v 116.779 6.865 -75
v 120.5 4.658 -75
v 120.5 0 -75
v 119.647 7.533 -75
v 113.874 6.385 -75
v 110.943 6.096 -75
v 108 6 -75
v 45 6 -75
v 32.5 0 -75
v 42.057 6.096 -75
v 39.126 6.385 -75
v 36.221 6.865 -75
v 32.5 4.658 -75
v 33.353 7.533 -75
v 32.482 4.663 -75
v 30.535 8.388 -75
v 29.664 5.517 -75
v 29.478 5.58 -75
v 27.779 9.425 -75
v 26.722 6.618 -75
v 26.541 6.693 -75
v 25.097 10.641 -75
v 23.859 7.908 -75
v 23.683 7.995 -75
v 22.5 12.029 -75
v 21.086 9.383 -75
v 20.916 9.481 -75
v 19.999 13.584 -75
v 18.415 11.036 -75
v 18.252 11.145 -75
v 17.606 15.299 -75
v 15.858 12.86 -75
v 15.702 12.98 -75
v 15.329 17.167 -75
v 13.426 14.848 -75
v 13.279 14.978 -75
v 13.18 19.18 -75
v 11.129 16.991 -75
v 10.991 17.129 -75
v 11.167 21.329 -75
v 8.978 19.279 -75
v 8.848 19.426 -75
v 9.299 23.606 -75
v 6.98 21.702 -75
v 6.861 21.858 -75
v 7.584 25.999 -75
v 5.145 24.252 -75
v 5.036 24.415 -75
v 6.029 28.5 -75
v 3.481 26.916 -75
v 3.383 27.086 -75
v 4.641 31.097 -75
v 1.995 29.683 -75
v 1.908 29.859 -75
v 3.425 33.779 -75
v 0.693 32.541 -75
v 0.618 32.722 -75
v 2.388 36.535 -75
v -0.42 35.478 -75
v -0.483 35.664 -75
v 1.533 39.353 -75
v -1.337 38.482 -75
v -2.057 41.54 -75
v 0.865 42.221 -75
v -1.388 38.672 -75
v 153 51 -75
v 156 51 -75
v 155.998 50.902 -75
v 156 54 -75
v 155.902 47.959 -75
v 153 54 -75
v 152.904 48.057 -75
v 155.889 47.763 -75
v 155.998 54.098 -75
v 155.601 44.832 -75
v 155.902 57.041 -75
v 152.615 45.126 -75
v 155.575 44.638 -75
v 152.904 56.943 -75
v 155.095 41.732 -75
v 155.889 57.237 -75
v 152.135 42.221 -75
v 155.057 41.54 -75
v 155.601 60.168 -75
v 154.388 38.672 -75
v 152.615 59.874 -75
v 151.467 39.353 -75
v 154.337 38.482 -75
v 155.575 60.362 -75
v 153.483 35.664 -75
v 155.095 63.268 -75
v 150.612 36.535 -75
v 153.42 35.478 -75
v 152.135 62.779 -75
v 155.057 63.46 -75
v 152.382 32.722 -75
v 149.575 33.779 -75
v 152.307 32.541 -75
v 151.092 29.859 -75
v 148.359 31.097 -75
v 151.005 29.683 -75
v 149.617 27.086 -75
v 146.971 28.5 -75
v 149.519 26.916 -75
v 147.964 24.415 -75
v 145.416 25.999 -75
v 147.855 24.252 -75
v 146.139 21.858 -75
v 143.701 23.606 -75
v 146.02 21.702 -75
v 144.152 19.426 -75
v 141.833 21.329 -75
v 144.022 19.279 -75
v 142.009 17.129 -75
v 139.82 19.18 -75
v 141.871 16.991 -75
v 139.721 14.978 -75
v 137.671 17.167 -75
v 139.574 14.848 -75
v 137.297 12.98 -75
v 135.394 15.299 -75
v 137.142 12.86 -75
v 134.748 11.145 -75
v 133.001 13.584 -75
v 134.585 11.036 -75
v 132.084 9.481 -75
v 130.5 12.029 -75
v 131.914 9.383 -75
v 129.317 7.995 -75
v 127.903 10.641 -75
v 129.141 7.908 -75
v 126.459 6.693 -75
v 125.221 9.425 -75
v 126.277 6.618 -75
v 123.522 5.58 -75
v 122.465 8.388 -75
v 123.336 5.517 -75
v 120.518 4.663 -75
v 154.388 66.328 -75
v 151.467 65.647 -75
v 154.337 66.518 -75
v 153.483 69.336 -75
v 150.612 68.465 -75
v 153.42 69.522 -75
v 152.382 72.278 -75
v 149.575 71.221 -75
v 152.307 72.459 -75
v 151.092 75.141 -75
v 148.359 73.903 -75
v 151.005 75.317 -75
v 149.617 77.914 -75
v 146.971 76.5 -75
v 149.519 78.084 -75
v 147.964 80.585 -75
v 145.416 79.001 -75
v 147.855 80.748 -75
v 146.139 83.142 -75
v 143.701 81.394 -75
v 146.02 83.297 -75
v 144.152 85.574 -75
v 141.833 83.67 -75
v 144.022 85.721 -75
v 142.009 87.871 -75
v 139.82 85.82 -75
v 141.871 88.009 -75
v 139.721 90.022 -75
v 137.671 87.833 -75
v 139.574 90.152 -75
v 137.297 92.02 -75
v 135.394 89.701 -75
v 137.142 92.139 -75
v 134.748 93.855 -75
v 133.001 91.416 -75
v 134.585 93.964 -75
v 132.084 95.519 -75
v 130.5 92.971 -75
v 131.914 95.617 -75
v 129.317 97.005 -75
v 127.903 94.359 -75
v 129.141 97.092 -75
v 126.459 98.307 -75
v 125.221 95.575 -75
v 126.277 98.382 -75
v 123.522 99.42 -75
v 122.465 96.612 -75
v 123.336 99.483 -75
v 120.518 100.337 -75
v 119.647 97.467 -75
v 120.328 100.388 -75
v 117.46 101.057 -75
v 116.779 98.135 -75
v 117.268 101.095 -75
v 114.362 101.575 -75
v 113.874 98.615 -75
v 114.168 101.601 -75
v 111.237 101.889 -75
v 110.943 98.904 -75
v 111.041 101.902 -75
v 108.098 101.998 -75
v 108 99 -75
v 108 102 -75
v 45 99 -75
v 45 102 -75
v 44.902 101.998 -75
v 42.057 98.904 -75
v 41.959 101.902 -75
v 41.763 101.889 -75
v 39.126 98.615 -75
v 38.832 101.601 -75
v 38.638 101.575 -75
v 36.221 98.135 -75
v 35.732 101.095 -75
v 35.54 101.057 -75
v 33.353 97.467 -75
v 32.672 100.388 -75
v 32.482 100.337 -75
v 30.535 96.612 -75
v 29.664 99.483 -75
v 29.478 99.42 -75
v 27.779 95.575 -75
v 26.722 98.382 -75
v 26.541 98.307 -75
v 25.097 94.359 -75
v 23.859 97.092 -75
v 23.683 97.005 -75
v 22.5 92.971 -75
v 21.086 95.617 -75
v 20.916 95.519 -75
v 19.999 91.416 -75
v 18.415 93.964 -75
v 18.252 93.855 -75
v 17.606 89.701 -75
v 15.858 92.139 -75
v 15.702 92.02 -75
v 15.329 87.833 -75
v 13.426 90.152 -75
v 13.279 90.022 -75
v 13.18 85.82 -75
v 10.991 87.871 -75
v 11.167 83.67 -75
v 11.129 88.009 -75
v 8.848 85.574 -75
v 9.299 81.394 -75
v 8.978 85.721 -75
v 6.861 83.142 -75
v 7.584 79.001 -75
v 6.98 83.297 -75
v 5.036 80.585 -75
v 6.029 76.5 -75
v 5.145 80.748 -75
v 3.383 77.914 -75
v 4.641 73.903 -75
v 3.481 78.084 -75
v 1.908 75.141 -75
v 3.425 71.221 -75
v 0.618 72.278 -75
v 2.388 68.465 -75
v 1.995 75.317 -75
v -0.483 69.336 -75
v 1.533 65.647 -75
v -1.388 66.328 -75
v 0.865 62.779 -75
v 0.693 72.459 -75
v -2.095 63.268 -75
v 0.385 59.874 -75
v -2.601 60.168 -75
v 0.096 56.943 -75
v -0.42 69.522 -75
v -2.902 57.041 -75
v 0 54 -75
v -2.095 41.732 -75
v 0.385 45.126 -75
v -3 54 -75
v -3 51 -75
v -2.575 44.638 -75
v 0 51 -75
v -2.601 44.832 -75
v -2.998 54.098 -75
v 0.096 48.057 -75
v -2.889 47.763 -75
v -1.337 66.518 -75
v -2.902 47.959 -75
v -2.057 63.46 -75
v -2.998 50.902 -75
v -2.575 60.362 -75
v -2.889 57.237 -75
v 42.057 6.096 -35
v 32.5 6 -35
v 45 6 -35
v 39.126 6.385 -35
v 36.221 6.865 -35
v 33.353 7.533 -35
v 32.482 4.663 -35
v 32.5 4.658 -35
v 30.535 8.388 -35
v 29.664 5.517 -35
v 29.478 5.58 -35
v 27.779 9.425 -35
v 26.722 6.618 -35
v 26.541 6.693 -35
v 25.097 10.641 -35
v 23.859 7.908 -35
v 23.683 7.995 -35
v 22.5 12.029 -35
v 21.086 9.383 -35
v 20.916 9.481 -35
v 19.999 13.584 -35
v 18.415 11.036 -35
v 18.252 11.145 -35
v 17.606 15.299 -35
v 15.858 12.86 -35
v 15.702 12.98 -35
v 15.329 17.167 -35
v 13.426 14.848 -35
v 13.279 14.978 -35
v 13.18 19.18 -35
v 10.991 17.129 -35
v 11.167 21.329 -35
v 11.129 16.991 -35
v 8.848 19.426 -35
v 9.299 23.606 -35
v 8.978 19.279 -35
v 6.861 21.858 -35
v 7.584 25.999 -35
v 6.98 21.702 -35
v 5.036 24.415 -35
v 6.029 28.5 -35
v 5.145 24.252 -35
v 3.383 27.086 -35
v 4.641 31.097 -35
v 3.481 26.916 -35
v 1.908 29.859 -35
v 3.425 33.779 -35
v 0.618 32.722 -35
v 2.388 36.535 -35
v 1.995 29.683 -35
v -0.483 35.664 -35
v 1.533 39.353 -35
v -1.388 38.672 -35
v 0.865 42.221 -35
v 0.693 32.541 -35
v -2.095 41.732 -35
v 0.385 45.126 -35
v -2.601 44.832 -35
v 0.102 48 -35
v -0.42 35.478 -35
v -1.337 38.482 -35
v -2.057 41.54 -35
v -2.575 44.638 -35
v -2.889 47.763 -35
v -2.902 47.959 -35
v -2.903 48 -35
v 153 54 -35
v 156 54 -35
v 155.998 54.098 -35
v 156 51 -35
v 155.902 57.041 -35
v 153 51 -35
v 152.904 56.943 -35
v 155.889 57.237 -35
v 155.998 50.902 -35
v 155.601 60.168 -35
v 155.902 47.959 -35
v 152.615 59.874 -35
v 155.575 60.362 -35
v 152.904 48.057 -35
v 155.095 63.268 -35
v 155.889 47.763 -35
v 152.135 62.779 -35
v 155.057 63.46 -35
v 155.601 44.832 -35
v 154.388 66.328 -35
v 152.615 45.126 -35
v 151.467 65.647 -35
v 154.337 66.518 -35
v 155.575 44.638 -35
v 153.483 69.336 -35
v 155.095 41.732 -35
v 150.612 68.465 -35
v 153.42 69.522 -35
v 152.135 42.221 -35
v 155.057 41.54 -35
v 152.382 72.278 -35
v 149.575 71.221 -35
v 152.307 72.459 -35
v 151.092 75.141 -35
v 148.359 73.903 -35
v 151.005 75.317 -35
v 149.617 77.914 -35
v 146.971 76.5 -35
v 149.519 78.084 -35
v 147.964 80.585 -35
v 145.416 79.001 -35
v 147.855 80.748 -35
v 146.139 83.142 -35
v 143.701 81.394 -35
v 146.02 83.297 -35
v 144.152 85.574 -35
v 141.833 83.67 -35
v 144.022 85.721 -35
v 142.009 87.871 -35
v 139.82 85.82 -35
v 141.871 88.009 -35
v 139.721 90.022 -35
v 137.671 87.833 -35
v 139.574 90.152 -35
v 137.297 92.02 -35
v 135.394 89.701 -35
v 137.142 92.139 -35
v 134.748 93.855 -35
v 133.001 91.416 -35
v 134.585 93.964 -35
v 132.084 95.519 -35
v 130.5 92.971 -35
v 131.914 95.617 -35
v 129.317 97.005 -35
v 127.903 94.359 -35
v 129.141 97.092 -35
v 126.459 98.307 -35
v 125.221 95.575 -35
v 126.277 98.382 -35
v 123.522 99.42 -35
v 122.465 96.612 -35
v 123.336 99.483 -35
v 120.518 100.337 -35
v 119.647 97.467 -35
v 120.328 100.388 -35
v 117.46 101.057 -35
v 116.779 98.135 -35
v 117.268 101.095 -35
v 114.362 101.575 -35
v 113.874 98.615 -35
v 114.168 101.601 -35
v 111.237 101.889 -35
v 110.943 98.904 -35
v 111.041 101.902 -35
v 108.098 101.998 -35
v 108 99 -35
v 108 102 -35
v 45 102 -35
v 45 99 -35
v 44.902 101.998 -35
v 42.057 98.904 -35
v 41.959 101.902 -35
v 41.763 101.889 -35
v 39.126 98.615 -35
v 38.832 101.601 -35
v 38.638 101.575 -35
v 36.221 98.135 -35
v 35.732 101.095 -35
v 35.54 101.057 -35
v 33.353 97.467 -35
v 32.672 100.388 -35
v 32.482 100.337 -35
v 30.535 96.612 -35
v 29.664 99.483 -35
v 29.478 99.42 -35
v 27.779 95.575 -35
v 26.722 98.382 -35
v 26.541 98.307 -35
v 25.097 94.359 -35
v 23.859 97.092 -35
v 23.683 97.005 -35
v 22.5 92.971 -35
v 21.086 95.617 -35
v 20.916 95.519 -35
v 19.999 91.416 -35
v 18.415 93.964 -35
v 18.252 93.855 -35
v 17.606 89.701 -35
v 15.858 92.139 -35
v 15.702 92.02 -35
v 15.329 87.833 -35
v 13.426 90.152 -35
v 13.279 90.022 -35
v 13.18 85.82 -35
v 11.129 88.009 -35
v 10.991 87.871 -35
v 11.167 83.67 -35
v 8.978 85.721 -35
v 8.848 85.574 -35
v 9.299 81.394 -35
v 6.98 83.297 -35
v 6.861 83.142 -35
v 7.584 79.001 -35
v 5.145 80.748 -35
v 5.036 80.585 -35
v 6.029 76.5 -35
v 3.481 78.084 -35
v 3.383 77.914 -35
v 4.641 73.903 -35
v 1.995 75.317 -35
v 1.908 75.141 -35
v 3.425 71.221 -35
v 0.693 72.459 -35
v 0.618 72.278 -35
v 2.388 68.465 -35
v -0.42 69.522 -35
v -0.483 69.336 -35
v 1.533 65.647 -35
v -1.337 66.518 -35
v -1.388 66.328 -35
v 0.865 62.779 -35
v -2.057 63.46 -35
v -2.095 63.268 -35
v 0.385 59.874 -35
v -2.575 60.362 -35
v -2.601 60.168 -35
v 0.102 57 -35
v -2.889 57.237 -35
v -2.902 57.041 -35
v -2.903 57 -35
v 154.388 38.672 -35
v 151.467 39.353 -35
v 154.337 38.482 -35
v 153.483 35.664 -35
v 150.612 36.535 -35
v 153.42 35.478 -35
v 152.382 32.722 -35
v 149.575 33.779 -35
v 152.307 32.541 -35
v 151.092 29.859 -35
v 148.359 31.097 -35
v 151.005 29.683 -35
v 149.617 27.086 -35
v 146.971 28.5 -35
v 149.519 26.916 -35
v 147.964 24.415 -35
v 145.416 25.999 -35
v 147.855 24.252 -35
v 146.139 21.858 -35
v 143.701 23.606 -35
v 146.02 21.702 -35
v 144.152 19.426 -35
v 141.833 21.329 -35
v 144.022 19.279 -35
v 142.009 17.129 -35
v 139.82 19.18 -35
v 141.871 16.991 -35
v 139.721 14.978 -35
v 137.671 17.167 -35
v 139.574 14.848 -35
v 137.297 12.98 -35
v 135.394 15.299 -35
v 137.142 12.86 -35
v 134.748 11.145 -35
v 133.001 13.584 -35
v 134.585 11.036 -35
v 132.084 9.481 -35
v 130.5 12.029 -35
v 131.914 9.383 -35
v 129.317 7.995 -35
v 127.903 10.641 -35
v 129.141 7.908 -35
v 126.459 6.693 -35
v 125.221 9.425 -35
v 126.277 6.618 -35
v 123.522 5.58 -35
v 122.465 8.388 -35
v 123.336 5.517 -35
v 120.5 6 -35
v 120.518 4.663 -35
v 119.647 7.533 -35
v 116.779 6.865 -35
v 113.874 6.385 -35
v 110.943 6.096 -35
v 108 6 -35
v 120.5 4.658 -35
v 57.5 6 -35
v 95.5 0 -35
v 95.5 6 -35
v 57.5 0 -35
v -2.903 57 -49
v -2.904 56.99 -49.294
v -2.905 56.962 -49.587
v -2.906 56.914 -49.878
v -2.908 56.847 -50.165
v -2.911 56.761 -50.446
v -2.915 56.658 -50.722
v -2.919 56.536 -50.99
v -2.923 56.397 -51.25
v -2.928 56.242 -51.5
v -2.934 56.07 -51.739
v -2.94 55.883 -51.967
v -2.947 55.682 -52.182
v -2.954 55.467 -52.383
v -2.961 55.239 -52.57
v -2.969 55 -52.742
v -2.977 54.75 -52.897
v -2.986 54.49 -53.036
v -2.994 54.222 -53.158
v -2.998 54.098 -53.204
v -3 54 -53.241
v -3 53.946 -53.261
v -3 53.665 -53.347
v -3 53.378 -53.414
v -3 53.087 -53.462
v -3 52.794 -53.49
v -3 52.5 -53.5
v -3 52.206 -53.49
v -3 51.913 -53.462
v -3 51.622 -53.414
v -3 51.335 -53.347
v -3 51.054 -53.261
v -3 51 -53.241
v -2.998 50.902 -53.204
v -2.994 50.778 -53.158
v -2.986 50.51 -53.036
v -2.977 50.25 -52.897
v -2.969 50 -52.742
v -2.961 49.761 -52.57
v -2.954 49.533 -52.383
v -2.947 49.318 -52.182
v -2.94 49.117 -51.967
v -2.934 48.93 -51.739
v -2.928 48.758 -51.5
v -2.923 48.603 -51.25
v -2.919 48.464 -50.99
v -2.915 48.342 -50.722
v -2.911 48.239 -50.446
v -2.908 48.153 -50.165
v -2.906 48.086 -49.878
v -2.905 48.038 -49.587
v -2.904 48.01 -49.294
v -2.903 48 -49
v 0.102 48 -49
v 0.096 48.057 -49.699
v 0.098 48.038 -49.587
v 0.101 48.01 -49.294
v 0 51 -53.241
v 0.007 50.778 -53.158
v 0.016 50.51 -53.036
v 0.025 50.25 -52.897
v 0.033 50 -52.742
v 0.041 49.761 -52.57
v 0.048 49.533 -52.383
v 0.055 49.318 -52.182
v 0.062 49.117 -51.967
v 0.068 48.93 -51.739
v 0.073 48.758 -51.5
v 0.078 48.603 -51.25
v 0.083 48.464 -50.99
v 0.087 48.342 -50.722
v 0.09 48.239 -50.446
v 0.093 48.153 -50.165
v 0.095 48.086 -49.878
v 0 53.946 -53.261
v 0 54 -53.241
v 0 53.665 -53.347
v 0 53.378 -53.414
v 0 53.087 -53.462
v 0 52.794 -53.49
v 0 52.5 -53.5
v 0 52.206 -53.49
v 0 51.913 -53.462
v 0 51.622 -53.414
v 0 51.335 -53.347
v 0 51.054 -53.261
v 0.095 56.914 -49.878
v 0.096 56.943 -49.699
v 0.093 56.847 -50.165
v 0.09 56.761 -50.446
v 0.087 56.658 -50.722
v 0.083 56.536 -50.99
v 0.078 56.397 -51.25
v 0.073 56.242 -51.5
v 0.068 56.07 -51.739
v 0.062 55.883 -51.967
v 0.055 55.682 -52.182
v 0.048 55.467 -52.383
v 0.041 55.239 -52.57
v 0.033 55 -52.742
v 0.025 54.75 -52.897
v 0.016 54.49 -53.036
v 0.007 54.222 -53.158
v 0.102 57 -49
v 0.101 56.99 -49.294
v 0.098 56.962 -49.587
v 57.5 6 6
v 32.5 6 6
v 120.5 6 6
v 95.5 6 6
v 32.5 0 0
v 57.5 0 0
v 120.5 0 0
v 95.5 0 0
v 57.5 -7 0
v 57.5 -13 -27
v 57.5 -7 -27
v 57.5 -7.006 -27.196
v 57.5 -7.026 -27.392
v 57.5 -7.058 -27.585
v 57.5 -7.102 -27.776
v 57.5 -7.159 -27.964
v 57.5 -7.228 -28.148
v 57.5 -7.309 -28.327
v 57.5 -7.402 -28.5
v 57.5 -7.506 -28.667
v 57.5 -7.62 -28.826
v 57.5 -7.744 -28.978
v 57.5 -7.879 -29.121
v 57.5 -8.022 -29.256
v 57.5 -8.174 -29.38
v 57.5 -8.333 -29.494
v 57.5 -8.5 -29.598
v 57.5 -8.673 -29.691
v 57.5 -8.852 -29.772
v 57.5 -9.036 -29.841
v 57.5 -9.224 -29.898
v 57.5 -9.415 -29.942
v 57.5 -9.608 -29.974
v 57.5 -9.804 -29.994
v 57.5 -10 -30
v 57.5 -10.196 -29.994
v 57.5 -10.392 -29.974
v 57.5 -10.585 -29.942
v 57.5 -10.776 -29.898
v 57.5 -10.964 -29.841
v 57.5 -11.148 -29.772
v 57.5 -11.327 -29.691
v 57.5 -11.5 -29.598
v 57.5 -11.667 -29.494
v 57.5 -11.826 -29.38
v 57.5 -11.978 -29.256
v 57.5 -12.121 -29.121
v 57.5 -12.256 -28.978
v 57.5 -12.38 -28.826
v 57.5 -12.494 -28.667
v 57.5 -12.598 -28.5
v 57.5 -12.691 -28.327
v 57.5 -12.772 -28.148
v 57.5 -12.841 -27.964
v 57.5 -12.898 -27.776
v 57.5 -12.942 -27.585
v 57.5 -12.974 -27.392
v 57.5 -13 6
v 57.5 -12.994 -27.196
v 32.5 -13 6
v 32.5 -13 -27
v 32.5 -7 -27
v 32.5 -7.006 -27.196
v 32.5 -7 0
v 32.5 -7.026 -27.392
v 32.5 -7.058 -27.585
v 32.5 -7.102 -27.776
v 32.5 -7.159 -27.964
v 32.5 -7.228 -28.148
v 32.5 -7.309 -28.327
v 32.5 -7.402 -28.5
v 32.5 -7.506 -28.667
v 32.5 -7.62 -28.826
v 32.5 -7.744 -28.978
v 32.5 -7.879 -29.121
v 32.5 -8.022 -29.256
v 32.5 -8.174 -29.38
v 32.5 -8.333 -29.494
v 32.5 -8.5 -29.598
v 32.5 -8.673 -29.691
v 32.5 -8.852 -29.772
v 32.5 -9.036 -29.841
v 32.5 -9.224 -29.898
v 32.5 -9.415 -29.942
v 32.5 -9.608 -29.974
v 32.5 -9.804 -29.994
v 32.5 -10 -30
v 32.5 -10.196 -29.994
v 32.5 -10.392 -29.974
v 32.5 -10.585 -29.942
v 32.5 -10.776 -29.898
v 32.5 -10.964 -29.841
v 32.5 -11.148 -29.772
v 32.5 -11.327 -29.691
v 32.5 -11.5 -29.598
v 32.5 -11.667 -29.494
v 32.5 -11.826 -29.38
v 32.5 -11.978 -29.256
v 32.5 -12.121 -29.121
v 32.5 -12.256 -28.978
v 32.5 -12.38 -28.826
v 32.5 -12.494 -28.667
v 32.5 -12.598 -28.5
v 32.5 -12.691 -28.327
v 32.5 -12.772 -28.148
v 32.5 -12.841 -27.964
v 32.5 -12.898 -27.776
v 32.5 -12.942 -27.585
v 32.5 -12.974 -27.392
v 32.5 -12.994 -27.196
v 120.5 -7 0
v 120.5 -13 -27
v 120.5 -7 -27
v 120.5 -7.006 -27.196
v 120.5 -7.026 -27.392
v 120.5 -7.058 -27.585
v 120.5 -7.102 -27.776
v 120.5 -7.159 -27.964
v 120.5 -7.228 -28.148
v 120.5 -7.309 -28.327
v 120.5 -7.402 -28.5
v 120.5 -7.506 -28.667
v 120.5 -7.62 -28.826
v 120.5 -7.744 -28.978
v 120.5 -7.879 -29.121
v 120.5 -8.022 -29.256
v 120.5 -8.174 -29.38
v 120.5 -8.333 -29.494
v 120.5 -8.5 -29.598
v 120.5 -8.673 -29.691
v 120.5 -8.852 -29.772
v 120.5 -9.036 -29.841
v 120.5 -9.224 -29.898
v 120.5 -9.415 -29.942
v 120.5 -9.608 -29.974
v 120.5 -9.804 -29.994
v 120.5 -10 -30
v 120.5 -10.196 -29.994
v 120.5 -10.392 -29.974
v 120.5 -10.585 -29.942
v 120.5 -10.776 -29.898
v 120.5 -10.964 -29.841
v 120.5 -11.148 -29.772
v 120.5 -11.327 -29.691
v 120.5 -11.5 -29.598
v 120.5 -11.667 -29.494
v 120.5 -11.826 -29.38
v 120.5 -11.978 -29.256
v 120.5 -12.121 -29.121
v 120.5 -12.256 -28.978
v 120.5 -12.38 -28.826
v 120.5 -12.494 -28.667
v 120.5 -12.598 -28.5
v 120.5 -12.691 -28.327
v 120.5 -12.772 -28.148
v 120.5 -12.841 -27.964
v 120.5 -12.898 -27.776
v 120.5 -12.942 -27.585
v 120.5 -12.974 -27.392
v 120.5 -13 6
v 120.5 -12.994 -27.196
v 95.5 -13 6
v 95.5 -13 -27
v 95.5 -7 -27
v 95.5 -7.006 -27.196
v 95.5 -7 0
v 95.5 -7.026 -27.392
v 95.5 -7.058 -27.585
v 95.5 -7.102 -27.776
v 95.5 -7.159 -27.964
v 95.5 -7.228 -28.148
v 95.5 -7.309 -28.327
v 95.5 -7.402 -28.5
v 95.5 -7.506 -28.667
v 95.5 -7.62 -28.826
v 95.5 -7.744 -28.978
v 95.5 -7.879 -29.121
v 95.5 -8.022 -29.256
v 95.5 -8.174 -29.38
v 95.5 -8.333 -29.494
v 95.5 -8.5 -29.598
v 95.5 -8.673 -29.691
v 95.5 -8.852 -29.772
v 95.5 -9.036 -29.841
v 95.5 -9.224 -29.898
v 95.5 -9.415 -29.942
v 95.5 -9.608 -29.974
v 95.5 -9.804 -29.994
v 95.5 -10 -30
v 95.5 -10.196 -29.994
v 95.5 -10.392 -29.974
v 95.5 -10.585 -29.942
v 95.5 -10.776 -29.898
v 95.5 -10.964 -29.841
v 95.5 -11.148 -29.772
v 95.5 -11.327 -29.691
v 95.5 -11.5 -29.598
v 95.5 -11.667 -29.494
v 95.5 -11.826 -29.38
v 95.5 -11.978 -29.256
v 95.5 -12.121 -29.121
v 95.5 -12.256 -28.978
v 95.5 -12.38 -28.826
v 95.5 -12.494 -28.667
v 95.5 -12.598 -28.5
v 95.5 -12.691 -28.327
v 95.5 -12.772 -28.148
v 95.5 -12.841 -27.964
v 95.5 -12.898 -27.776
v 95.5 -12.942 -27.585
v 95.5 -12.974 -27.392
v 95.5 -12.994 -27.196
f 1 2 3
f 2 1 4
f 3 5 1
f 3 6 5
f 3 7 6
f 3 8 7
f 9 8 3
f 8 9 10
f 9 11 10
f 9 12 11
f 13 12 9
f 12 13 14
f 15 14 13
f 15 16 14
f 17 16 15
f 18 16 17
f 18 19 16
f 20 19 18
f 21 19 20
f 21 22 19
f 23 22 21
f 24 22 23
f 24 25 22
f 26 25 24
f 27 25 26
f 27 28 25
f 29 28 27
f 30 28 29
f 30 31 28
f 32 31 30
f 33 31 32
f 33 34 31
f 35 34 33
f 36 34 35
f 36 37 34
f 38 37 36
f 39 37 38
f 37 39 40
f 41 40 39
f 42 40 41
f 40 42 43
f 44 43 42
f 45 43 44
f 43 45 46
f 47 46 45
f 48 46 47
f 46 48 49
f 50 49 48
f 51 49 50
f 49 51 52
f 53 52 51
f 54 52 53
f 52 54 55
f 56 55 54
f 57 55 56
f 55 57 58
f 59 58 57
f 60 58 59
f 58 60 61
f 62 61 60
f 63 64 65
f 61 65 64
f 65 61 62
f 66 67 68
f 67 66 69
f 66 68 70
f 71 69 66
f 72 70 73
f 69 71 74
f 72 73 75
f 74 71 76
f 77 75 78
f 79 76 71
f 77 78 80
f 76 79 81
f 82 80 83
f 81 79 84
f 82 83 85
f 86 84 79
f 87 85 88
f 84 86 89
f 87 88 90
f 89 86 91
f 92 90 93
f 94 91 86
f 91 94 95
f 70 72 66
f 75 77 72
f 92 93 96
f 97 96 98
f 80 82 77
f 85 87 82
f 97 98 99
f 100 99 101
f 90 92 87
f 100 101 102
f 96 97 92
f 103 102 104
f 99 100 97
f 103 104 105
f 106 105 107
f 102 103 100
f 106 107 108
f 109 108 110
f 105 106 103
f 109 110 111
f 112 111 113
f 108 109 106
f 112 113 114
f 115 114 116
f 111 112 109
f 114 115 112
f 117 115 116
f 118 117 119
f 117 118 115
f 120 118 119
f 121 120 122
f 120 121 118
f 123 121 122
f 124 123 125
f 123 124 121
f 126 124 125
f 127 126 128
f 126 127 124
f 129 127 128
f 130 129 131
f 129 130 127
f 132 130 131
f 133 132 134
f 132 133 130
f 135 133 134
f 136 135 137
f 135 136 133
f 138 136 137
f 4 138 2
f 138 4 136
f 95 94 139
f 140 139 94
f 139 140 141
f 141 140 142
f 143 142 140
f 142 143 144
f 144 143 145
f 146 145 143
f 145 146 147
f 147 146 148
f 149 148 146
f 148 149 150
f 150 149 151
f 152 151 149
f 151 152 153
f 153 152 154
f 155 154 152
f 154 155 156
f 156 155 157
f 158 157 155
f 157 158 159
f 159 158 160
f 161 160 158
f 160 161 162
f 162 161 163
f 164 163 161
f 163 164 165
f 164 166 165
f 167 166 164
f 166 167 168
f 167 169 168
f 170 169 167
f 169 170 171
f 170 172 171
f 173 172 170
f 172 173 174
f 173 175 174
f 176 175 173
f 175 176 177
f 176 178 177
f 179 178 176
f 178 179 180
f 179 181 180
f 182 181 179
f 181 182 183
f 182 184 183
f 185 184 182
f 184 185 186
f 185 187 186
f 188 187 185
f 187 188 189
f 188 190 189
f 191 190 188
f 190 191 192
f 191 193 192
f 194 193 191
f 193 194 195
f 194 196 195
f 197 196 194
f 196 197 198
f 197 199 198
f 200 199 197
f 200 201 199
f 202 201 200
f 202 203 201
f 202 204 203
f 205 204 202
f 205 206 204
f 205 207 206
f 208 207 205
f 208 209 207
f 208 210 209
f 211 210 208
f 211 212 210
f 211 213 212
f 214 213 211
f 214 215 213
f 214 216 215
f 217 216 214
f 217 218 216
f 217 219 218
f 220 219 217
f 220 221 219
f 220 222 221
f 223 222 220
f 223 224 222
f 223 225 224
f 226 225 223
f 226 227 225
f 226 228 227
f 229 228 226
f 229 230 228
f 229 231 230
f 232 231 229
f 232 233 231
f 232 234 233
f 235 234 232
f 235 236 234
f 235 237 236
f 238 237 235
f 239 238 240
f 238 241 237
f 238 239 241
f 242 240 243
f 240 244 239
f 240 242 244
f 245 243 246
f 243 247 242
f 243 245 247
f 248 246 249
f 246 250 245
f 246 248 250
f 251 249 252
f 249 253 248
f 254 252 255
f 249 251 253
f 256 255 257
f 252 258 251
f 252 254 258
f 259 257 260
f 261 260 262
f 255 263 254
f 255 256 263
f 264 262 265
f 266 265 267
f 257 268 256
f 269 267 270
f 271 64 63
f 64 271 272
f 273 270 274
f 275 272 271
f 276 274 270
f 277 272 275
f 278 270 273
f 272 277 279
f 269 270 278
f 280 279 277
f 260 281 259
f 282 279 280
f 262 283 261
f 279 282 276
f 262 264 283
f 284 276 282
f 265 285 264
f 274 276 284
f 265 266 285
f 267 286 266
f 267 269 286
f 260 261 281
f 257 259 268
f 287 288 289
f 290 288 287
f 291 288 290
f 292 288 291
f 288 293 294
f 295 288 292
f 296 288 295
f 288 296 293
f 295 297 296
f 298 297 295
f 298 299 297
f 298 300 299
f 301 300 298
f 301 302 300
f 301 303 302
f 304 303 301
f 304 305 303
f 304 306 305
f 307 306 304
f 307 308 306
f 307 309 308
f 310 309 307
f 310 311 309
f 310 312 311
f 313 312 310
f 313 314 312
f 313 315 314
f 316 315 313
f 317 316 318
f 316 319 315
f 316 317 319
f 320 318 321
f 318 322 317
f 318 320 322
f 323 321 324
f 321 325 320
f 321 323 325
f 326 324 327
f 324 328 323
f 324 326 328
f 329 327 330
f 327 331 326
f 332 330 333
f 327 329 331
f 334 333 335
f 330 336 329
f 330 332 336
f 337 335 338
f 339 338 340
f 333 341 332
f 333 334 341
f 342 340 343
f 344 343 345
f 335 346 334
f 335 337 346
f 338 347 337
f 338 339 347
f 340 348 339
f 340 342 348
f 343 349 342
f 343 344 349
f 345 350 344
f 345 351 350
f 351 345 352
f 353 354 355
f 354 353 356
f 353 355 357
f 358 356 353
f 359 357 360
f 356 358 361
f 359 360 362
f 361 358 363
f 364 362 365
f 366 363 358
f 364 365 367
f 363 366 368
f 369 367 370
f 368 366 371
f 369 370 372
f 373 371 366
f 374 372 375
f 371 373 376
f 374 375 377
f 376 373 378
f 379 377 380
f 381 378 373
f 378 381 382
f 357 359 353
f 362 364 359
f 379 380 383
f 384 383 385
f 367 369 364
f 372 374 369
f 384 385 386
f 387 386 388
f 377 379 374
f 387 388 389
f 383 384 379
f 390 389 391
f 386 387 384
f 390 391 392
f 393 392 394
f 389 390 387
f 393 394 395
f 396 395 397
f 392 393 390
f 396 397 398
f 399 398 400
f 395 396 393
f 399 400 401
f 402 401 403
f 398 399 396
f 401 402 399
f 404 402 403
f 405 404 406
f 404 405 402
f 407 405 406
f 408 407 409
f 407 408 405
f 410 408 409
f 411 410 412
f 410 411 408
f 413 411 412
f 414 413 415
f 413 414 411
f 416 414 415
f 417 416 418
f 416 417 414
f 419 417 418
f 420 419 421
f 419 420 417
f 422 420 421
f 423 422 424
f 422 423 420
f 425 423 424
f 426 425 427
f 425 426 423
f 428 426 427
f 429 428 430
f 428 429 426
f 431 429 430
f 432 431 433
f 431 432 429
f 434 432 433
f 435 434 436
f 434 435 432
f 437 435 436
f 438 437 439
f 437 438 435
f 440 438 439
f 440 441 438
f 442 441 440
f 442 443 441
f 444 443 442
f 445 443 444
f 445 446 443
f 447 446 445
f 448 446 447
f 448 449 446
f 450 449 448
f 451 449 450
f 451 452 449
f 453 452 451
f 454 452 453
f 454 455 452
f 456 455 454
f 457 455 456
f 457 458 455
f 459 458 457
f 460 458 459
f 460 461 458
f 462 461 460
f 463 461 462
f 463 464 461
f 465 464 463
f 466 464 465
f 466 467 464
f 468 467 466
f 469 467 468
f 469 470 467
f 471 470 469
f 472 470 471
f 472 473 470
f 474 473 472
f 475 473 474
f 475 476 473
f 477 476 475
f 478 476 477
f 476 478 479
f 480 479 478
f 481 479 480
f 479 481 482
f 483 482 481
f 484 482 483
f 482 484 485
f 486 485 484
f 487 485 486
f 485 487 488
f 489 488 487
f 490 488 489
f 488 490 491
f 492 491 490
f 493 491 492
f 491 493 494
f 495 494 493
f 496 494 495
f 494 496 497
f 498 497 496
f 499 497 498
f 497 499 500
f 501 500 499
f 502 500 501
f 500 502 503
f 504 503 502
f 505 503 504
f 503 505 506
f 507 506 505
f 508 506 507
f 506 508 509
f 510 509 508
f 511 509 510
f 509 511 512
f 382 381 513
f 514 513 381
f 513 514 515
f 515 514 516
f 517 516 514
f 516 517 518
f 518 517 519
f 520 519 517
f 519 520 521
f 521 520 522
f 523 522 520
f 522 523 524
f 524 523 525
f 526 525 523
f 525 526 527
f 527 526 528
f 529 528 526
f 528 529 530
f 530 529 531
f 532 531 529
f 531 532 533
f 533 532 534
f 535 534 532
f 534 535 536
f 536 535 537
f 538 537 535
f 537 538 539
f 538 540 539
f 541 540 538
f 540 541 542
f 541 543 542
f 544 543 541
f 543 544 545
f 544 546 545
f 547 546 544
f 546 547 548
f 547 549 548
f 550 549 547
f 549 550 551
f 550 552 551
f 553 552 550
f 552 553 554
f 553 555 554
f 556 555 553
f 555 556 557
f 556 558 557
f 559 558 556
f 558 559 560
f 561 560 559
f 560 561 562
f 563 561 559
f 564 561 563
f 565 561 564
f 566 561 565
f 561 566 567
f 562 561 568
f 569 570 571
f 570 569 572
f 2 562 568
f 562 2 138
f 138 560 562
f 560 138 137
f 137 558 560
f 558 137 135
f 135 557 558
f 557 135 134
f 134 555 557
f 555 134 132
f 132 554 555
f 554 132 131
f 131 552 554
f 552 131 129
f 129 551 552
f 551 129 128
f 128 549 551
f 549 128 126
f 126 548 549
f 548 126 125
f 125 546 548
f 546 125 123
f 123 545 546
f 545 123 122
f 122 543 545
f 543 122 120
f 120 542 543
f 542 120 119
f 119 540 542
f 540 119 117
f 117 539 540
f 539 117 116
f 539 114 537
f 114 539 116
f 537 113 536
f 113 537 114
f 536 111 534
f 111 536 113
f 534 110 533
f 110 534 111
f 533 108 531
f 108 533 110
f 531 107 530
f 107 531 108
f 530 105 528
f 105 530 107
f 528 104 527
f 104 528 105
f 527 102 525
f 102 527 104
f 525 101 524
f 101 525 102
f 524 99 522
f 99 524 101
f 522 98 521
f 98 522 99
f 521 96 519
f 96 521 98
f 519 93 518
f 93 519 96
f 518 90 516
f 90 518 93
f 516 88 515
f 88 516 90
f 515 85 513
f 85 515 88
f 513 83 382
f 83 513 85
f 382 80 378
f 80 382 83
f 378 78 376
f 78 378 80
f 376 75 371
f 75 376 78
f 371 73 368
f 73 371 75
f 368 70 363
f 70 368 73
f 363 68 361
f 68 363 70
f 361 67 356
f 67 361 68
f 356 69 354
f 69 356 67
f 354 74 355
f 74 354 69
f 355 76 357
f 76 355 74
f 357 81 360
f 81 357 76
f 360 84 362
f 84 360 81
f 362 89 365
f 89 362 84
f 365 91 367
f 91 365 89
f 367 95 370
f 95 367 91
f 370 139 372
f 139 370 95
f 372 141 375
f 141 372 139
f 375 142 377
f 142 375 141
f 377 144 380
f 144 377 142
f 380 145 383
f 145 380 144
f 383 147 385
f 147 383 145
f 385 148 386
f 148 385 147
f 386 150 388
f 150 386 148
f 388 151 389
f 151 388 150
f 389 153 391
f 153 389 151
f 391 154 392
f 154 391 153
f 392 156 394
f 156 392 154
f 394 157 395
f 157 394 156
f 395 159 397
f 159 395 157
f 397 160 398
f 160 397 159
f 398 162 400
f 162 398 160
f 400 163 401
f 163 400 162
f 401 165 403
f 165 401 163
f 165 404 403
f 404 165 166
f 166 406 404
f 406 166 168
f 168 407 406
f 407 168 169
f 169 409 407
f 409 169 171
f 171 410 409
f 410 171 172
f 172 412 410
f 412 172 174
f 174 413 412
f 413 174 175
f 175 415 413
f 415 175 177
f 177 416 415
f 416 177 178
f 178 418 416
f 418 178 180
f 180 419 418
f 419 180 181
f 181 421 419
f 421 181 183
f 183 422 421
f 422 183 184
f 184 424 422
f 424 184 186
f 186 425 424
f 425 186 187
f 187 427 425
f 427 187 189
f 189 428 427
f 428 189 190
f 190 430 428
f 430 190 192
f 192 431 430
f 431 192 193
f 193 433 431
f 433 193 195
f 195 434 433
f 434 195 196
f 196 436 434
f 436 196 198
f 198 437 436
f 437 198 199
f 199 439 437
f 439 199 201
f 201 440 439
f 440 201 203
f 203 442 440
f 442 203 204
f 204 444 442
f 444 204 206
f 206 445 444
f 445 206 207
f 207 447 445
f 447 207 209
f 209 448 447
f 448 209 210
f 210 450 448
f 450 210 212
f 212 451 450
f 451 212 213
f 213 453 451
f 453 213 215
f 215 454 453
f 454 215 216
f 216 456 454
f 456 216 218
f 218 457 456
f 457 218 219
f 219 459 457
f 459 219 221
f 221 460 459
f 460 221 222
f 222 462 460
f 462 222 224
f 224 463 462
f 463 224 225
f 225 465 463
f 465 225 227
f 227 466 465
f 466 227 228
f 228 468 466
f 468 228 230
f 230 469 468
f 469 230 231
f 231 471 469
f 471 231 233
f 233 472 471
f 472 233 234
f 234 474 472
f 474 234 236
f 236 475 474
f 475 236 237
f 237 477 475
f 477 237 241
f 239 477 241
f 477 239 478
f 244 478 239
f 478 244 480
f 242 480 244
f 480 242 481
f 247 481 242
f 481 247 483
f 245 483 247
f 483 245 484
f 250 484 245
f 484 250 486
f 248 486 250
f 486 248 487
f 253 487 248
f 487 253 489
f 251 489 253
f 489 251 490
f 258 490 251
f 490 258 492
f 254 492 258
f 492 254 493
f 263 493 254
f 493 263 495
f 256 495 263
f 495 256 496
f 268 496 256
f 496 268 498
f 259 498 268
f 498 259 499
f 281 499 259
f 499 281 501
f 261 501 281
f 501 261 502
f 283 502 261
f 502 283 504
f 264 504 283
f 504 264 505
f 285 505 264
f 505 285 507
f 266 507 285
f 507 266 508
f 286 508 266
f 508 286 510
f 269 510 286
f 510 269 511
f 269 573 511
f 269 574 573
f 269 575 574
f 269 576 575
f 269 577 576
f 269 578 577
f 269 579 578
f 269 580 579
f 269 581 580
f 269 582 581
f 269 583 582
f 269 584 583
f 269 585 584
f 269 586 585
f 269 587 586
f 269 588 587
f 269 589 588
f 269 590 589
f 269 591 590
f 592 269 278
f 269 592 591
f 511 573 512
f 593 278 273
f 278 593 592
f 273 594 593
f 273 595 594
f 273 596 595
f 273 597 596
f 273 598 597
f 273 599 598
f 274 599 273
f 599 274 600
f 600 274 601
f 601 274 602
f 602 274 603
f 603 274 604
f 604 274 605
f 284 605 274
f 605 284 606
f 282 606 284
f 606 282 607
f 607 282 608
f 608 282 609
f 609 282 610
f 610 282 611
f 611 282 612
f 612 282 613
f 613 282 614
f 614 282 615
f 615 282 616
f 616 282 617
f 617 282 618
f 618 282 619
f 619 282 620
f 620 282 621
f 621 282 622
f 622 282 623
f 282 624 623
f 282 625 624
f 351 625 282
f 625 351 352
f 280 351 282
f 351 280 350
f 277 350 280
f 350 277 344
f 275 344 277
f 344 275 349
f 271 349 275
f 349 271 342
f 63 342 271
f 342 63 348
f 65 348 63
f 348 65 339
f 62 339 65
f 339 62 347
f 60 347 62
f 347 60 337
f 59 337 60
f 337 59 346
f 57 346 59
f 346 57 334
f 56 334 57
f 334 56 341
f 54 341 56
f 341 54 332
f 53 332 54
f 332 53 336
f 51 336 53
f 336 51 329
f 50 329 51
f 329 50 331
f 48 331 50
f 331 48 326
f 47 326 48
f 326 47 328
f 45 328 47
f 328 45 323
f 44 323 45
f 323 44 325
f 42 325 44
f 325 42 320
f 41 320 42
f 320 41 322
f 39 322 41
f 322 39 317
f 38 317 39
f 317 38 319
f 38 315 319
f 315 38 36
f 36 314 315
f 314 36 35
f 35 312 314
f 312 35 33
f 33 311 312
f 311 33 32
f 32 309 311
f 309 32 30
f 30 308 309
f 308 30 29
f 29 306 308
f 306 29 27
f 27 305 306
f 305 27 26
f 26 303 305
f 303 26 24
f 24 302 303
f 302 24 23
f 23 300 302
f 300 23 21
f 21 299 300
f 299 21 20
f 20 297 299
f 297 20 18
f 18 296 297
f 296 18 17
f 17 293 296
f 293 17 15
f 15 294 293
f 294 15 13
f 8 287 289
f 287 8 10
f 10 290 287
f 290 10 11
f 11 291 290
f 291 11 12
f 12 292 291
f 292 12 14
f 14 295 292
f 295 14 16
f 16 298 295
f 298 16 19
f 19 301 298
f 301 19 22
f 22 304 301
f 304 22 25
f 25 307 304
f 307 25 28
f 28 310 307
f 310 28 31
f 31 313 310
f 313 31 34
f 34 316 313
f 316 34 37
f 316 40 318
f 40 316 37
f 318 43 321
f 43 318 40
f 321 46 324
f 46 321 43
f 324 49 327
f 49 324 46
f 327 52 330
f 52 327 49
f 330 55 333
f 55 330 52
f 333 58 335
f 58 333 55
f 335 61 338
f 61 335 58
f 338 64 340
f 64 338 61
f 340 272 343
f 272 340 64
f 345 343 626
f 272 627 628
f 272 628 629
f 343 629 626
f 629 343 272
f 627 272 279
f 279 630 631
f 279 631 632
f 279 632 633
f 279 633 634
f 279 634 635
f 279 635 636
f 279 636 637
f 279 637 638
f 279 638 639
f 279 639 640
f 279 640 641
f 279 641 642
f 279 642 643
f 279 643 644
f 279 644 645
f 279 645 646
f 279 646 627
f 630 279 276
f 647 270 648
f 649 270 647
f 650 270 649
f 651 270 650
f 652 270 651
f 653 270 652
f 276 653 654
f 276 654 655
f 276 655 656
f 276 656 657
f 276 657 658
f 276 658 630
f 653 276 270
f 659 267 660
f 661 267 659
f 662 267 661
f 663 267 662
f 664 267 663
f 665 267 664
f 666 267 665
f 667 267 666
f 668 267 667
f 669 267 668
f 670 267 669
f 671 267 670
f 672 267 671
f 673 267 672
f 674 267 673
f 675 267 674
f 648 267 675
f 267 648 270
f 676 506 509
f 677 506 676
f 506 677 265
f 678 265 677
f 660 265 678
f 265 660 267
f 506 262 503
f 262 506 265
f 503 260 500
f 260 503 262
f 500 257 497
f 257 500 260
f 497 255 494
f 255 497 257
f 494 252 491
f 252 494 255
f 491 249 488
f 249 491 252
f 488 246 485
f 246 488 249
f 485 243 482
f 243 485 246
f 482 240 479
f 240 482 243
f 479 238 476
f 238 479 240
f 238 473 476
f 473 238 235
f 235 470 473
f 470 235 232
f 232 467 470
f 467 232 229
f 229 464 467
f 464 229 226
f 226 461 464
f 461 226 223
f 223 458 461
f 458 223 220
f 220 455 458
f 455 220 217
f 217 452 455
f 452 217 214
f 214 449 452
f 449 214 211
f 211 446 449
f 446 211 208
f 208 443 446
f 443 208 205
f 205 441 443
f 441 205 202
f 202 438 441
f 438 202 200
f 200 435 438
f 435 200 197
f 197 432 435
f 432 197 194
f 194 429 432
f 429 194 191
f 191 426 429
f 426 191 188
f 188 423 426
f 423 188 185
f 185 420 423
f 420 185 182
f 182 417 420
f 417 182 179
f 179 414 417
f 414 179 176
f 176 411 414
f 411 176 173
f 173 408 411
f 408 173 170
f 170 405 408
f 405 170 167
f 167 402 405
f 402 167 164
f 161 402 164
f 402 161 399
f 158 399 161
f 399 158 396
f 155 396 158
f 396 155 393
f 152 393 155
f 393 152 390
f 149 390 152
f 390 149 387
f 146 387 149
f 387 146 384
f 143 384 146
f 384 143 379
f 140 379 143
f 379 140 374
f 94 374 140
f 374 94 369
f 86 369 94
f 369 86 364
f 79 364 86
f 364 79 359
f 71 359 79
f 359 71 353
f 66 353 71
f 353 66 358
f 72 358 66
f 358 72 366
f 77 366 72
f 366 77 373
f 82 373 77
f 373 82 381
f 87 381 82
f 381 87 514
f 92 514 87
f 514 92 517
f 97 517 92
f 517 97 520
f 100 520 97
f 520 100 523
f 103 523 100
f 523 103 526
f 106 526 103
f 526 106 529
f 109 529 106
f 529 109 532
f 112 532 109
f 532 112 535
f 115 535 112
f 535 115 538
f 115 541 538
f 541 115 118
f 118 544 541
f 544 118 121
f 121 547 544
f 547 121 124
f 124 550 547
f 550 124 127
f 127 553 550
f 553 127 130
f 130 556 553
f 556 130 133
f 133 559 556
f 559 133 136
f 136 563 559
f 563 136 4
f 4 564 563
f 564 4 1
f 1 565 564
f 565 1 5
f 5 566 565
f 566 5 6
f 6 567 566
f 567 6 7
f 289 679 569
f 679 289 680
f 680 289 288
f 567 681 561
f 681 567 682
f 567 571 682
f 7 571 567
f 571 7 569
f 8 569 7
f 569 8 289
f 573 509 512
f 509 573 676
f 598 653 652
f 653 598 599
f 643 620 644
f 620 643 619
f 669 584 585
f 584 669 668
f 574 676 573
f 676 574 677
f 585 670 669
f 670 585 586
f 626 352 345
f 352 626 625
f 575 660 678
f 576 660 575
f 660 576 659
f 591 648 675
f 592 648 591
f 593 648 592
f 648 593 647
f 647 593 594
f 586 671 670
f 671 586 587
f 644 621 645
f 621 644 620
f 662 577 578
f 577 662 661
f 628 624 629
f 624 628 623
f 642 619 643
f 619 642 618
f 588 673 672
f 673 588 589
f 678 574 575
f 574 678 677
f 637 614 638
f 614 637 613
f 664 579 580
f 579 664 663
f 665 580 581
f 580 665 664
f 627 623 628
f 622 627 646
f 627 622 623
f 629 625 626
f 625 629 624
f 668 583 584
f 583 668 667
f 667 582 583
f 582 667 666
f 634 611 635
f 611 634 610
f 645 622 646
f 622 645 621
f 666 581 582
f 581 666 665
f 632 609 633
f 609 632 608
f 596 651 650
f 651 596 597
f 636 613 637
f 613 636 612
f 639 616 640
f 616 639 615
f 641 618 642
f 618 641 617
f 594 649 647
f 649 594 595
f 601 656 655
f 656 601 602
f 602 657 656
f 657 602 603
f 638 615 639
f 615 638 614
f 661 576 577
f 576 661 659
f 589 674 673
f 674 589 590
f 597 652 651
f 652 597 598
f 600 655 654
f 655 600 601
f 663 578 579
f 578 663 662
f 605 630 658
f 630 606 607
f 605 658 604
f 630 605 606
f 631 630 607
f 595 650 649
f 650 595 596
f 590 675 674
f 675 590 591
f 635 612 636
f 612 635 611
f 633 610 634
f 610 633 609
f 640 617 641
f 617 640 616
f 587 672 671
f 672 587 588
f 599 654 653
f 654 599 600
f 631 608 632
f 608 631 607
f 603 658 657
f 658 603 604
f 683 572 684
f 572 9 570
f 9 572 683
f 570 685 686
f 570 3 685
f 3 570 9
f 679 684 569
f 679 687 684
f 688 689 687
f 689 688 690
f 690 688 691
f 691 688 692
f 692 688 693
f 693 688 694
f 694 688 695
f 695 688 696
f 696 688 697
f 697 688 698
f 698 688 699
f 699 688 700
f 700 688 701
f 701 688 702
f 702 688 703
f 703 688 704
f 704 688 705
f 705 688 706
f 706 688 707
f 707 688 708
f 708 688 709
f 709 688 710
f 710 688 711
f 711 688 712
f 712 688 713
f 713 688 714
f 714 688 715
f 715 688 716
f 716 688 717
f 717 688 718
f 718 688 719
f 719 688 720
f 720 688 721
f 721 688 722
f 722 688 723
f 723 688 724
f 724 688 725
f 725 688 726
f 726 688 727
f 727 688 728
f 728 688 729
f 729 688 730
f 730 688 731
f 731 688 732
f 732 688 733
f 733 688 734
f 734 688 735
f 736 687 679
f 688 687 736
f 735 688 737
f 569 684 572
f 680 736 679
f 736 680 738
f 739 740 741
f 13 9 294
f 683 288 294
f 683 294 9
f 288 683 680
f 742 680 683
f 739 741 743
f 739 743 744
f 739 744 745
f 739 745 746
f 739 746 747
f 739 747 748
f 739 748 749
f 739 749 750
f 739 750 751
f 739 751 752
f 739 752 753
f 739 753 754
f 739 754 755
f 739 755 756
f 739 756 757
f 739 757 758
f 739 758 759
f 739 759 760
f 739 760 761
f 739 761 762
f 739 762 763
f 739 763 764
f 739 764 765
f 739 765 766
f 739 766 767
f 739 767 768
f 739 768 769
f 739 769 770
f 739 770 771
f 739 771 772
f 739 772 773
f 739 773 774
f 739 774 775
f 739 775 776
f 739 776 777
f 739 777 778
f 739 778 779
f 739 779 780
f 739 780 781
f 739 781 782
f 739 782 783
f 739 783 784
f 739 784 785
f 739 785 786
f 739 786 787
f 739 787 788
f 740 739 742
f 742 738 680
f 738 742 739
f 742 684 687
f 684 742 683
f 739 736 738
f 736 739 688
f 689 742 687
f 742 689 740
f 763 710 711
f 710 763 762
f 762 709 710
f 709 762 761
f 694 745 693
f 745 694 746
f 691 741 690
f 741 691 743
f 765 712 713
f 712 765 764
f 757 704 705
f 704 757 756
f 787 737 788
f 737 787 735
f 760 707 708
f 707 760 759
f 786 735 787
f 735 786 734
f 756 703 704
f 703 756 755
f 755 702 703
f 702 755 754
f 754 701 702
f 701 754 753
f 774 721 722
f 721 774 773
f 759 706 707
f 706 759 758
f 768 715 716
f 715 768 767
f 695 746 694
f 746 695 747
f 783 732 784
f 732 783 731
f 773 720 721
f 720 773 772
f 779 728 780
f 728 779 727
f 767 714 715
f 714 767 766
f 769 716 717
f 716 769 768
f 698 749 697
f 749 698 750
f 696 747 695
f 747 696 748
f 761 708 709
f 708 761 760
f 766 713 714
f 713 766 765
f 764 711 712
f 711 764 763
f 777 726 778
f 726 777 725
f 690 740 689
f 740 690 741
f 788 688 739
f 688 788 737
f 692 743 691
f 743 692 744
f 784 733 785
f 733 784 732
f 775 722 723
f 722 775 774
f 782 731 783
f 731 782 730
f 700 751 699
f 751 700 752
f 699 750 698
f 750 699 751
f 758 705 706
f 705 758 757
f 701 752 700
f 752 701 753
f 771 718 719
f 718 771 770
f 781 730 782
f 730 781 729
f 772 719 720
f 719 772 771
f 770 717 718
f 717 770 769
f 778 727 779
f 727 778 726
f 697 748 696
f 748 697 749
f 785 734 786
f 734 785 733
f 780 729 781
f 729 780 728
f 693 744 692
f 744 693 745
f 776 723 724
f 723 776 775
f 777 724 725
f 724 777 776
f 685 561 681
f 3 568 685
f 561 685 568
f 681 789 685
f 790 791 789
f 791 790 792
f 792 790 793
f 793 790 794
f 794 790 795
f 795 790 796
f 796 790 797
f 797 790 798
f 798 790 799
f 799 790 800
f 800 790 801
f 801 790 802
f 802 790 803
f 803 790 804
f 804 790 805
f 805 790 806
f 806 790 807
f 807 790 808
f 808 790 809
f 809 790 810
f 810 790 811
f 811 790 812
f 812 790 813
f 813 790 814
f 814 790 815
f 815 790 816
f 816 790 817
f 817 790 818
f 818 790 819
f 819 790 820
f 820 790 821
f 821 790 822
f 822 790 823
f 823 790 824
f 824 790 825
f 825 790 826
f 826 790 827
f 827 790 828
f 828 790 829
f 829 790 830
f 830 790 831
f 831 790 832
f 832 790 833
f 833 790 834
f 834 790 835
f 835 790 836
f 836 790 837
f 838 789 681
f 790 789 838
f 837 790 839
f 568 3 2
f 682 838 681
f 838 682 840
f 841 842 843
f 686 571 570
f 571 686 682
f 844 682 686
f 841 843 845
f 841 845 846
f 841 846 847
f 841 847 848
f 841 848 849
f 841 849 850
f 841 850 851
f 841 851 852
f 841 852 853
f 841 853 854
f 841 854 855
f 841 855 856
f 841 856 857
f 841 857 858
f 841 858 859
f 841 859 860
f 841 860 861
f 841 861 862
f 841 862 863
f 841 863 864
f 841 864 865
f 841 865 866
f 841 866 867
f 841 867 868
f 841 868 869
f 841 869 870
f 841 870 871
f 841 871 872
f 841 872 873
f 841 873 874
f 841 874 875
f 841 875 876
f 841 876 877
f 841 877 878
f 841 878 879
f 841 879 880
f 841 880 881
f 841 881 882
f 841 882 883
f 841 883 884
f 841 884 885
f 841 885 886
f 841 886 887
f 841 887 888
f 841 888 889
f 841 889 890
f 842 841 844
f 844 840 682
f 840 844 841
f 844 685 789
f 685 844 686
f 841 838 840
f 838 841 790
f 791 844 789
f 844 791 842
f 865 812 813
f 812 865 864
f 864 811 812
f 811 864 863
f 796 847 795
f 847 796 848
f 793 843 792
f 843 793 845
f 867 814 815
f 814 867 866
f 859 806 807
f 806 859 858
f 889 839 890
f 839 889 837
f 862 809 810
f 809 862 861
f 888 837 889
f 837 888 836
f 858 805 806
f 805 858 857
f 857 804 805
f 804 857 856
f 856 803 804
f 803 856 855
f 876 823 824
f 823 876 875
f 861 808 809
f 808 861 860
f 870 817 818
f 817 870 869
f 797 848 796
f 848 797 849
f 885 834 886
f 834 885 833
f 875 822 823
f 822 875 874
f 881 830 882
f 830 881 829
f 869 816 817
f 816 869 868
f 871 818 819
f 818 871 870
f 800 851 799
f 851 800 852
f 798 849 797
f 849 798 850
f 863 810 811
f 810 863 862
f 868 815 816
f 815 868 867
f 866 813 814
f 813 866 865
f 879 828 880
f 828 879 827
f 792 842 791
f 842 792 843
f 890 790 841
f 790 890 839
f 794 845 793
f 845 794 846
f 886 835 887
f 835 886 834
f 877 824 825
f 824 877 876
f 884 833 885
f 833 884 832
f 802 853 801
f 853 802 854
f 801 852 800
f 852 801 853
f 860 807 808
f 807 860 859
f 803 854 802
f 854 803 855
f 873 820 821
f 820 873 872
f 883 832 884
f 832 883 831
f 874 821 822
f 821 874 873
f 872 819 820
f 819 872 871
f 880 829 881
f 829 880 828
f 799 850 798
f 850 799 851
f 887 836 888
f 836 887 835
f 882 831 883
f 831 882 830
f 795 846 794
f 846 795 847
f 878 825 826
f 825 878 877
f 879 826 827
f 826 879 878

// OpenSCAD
// Suport agățat tip inel (ca suportul original OASE) pentru FiltoSmart 60
// Inel oval care se prinde sub capul (umărul) filtrului + 2 stâlpi cu cârlige în J
// care se agață peste geamul acvariului. Toate valorile în mm.
//
// Printare: în picioare (inelul pe pat). Suport DOAR sub cârlige
// (buza care intră în acvariu); restul se printează fără suport. PETG.

/* [Filtru] */
// Măsoară CORPUL filtrului chiar sub capul lui (acolo stă inelul).
// Inelul trebuie să fie mai mic decât capul, ca filtrul să atârne în el.
filtru_L = 150;      // lungimea corpului (paralel cu geamul)
filtru_l = 90;       // lățimea corpului (perpendicular pe geam)
filtru_H = 164;      // înălțimea filtrului
joc      = 1.5;      // joc pe fiecare parte
raza_capete = 45;    // raza capetelor rotunjite (max = (filtru_l+2*joc)/2)

/* [Acvariu] */
geam_grosime = 6;    // grosimea geamului (MĂSOARĂ-L!)
geam_joc     = 1;    // joc suplimentar pentru geam / silicon
inel_sub_margine = 35; // cât de jos e marginea de sus a inelului sub muchia geamului
buza_carlig  = 30;   // cât coboară cârligul în interiorul acvariului

/* [Construcție] */
perete_inel  = 3;    // grosimea inelului
inaltime_inel = 40;  // înălțimea inelului
buza_jos     = 0;    // buză interioară jos, opțională (filtrul atârnă de umărul capului)
grosime_stalp = 6;   // grosimea stâlpilor și a cârligelor
latime_stalp = 25;   // lățimea stâlpilor
decupaj_cablu = true; // crestătură la un capăt (cablu / furtun)

$fn = 96;

// ---- derivate ----
int_L = filtru_L + 2*joc;
int_l = filtru_l + 2*joc;
r_int = min(raza_capete, int_l/2);
g = geam_grosime + geam_joc;
z_jos = -inel_sub_margine - inaltime_inel;
y0 = grosime_stalp;            // de aici începe interiorul inelului (spre exterior)

// Coordonate: X de-a lungul geamului, Y spre exterior (geamul în Y ∈ [-g,0]),
// Z sus (Z = 0 = muchia de sus a geamului).

module oval2d(L, l, r) {
    hull() for (x = [r, L - r], y = [r, l - r]) translate([x, y]) circle(r);
}

module inel() {
    translate([0, y0, z_jos]) difference() {
        union() {
            // banda ovală
            linear_extrude(inaltime_inel) difference() {
                offset(perete_inel) oval2d(int_L, int_l, r_int);
                oval2d(int_L, int_l, r_int);
            }
            // buza de jos (înclinată 45° ca să nu necesite suport)
            if (buza_jos > 0) difference() {
                linear_extrude(perete_inel + buza_jos) offset(perete_inel) oval2d(int_L, int_l, r_int);
                translate([0, 0, perete_inel - 0.01])
                    hull() {
                        linear_extrude(0.01) offset(-buza_jos) oval2d(int_L, int_l, r_int);
                        translate([0, 0, buza_jos]) linear_extrude(0.02) oval2d(int_L, int_l, r_int);
                    }
                translate([0, 0, -1]) linear_extrude(perete_inel + 2) offset(-buza_jos) oval2d(int_L, int_l, r_int);
            }
        }
        // crestătură pentru cablu la capătul din stânga
        if (decupaj_cablu)
            translate([-perete_inel - 1, int_l/2, inaltime_inel - 14])
                rotate([0, 90, 0]) hull() {
                    cylinder(d = 9, h = perete_inel + 2);
                    translate([-20, 0, 0]) cylinder(d = 9, h = perete_inel + 2);
                }
    }
    // perete spate drept, îngroșat, lipit de geam (umple între stâlpi și inel)
    translate([r_int, 0, z_jos]) cube([int_L - 2*r_int, y0, inaltime_inel]);
}

module stalp_cu_carlig() {
    // stâlp vertical, lipit de geam
    translate([0, 0, z_jos]) cube([latime_stalp, grosime_stalp, -z_jos + grosime_stalp]);
    // puntea peste geam
    translate([0, -g - grosime_stalp, 0]) cube([latime_stalp, g + grosime_stalp, grosime_stalp]);
    // buza din interiorul acvariului, cu vârf rotunjit
    translate([0, -g - grosime_stalp, -buza_carlig + grosime_stalp/2])
        cube([latime_stalp, grosime_stalp, buza_carlig + grosime_stalp/2]);
    translate([0, -g - grosime_stalp/2, -buza_carlig + grosime_stalp/2])
        rotate([0, 90, 0]) cylinder(d = grosime_stalp, h = latime_stalp);
}

module suport() {
    union() {
        inel();
        // stâlpii stau la capetele părții drepte a inelului
        for (x = [r_int, int_L - r_int])
            translate([x - latime_stalp/2, 0, 0]) stalp_cu_carlig();
    }
}

suport();

// Previzualizare (doar F5)
// corpul filtrului + capul mai lat care stă pe inel
%translate([0, y0, -inel_sub_margine - (filtru_H - 40)]) linear_extrude(filtru_H - 40) oval2d(int_L, int_l, r_int);
%translate([0, y0, -inel_sub_margine]) linear_extrude(40) offset(perete_inel + 2) oval2d(int_L, int_l, r_int);
%translate([-30, -geam_grosime, -260]) cube([int_L + 60, geam_grosime, 260]);
